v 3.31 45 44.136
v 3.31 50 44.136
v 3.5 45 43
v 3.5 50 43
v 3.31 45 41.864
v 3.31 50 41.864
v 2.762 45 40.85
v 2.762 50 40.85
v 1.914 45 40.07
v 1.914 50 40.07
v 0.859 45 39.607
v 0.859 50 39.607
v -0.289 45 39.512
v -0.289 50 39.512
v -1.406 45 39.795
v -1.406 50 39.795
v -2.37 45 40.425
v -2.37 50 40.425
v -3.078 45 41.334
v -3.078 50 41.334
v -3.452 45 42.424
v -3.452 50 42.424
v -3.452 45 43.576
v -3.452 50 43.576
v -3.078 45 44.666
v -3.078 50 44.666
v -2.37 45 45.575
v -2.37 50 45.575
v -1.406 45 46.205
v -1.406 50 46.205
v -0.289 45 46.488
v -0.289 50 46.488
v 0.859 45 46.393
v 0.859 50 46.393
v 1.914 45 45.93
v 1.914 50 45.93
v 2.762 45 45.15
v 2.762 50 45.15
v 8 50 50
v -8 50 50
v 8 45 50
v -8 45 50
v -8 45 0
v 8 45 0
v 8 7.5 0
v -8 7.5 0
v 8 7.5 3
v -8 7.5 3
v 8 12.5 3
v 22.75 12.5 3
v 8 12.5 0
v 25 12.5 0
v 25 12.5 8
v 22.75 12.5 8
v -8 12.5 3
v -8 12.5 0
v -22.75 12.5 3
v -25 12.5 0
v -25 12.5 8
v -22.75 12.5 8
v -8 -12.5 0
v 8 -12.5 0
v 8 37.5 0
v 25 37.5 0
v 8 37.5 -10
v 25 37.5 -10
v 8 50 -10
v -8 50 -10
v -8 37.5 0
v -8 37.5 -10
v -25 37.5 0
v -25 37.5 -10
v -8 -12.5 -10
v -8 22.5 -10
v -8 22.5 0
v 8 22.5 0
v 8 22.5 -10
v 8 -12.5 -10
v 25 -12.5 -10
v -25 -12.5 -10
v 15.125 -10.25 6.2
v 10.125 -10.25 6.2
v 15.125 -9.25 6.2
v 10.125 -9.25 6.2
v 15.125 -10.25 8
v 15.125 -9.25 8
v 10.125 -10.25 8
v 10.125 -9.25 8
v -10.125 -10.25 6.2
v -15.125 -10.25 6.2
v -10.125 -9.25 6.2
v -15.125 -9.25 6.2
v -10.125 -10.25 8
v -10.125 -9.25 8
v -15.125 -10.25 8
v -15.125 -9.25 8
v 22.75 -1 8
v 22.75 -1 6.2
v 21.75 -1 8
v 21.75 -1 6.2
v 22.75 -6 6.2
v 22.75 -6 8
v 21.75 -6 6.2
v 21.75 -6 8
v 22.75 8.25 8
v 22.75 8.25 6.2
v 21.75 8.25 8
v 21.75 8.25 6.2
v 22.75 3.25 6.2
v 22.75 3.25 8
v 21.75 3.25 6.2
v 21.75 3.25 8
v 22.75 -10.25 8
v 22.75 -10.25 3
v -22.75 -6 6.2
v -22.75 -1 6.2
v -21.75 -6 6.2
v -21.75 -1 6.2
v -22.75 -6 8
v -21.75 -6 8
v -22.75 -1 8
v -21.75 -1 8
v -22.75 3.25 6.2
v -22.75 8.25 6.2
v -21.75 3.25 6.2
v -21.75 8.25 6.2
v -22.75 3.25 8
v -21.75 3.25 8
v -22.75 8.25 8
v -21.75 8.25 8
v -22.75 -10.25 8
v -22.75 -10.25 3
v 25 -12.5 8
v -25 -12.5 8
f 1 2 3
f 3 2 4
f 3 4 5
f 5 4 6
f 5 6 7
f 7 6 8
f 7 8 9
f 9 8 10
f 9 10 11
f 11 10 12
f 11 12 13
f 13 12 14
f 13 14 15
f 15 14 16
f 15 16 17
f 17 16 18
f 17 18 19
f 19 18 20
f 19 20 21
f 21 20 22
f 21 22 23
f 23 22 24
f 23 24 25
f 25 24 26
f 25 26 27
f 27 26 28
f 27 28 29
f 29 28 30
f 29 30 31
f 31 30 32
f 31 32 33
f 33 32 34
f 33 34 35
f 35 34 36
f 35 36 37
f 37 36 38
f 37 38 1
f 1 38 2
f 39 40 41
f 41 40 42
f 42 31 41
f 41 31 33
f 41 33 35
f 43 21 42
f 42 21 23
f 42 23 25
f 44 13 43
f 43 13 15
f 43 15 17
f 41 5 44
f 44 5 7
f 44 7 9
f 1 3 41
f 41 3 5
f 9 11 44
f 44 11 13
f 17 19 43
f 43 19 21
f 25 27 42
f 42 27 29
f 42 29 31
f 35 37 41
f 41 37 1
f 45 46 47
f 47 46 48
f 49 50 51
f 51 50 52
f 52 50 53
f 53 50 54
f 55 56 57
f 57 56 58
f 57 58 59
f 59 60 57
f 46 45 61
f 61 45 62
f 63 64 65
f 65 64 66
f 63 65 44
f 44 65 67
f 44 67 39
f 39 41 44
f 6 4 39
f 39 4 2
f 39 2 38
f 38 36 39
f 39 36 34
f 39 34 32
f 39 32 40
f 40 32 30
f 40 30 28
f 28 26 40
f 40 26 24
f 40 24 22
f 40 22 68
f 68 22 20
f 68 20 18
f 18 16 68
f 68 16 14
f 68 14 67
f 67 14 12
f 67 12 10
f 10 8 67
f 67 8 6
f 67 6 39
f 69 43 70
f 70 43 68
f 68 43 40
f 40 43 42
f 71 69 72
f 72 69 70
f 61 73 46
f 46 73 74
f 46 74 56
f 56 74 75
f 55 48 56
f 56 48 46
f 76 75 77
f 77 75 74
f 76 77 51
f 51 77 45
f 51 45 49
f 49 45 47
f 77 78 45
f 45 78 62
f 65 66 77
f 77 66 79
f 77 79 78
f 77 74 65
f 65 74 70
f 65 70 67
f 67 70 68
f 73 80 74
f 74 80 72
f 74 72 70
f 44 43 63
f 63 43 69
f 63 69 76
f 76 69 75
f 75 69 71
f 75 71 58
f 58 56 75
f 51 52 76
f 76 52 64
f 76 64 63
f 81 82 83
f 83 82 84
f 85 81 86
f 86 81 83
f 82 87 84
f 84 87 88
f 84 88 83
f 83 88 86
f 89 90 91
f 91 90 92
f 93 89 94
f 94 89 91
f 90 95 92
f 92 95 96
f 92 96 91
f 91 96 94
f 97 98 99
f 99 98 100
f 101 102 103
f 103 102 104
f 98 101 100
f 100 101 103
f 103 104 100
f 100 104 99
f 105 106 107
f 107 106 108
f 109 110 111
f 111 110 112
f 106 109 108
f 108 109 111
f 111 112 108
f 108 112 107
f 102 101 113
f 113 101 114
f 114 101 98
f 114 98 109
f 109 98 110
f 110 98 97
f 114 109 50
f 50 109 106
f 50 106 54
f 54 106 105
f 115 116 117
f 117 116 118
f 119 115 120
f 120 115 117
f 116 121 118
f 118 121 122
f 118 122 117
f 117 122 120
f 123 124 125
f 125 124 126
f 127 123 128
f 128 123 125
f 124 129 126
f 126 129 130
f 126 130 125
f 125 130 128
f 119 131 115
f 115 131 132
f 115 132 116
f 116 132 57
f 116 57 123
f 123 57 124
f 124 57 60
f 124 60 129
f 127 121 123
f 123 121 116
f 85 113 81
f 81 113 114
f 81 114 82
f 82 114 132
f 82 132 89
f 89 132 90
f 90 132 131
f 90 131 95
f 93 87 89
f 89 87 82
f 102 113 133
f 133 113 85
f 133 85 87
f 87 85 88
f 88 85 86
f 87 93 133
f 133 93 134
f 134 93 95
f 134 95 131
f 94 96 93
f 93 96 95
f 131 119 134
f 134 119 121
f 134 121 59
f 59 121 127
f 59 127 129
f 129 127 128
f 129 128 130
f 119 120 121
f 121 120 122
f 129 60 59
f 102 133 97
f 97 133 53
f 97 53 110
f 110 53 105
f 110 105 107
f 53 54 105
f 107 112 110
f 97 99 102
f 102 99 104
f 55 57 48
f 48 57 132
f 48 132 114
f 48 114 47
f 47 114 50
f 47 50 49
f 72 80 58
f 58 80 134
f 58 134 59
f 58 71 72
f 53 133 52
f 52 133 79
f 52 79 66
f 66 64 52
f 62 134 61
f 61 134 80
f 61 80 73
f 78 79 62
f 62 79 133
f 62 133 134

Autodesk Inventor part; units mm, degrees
ref_plane "YZ Plane" through (0, 0, 0) normal (1, 0, 0) x (0, 1, 0)
ref_plane "XZ Plane" through (0, 0, 0) normal (0, 1, 0) x (-1, 0, 0)
ref_plane "XY Plane" through (0, 0, 0) normal (0, 0, 1) x (1, 0, 0)
sketch "Sketch1" plane through (0, 0, 0) normal (0, 0, 1) x (1, 0, 0)
  line L0 (-25, 12.5) -> (25, 12.5)
  line L1 (25, 12.5) -> (25, -12.5)
  line L2 (25, -12.5) -> (-25, -12.5)
  line L3 (-25, -12.5) -> (-25, 12.5)
  line L4 (-25, 12.5) -> (25, -12.5) construction
  line L5 (25, 12.5) -> (-25, -12.5) construction
  line L6 (-25, 12.5) -> (25, 12.5) construction
  point P0 (0, 0)
  dimension "d0" = 50
  dimension "d1" = 0
  dimension "d2" = 25
extrude "Extrusion1" add sketch "Sketch1" along normal blind 3
sketch "Sketch2" plane through (0, 0, 3) normal (0, 0, 1) x (1, 0, 0)
  line L0 (-22.75, -10.25) -> (22.75, -10.25)
  line L1 (22.75, -10.25) -> (22.75, 10.25)
  line L2 (22.75, 10.25) -> (-22.75, 10.25)
  line L3 (-22.75, 10.25) -> (-22.75, -10.25)
  line L4 (-22.75, -10.25) -> (22.75, 10.25) construction
  line L5 (22.75, -10.25) -> (-22.75, 10.25) construction
  line L6 (-22.75, -10.25) -> (22.75, -10.25) construction
  line L7 (25, 12.5) -> (-25, 12.5) projected
  line L8 (-25, -12.5) -> (25, -12.5) projected
  line L9 (25, 12.5) -> (25, -12.5)
  line L10 (25, -12.5) -> (-25, -12.5)
  line L11 (-25, -12.5) -> (-25, 12.5)
  line L12 (-22.75, 10.25) -> (-22.75, 12.5)
  line L13 (22.75, 10.25) -> (22.75, 12.5)
  line L14 (-25, 12.5) -> (-22.75, 12.5)
  line L15 (22.75, 12.5) -> (25, 12.5)
  point P0 (0, 0)
  dimension "d5" = 45.5
  dimension "d6" = 0
  dimension "d7" = 20.5
extrude "Extrusion2" add sketch "Sketch2" along normal blind 5 contours L0 L1 L13 L7 L9 L8 L11 L12 L3
sketch "Sketch3" plane through (-22.75, -10.25, 3) normal (1, 0, 0) x (0, 0, -1)
  line L0 (-5, 0) -> (-5, 22.75) projected
  line L1 (-3.2, 18.5) -> (-5, 18.5)
  line L2 (-5, 18.5) -> (-5, 13.5)
  line L3 (-5, 13.5) -> (-3.2, 13.5)
  line L4 (-3.2, 13.5) -> (-3.2, 18.5)
  line L5 (-5, 4.25) -> (-3.2, 4.25)
  line L6 (-3.2, 4.25) -> (-3.2, 9.25)
  line L7 (-3.2, 9.25) -> (-5, 9.25)
  line L8 (-5, 9.25) -> (-5, 4.25)
  point P0 (3, 10.25)
  point P1 (-5, 9.25)
  point P2 (-5, 4.25)
  dimension "d10" = 5
  dimension "d11" = 5
  dimension "d28" = 1.8
extrude "Extrusion3" add sketch "Sketch3" along normal blind 1
sketch "Sketch4" plane through (22.75, -10.25, 3) normal (-1, 0, 0) x (0, 0, 1)
  line L0 (5, 18.5) -> (5, 13.5) projected
  line L1 (3.2, 13.5) -> (3.2, 18.5) projected
  line L2 (5, 18.5) -> (3.2, 18.5)
  line L3 (3.2, 18.5) -> (3.2, 13.5)
  line L4 (3.2, 13.5) -> (5, 13.5)
  line L5 (5, 13.5) -> (5, 18.5)
  line L6 (5, 9.25) -> (5, 13.5) projected
  line L7 (3.2, 9.25) -> (3.2, 4.25) projected
  line L8 (5, 9.25) -> (3.2, 9.25)
  line L9 (3.2, 9.25) -> (3.2, 4.25)
  line L10 (3.2, 4.25) -> (5, 4.25)
  line L11 (5, 4.25) -> (5, 9.25)
  point P0 (-3, 10.25)
extrude "Extrusion4" add sketch "Sketch4" along normal blind 1
sketch "Sketch5" plane through (-22.75, -10.25, 3) normal (0, 1, 0) x (1, 0, 0)
  line L0 (45.5, -5) -> (0, -5) projected
  line L1 (7.625, -5) -> (12.625, -5)
  line L2 (12.625, -5) -> (12.625, -3.2)
  line L3 (12.625, -3.2) -> (7.625, -3.2)
  line L4 (7.625, -3.2) -> (7.625, -5)
  line L5 (32.875, -5) -> (37.875, -5)
  line L6 (37.875, -5) -> (37.875, -3.2)
  line L7 (37.875, -3.2) -> (32.875, -3.2)
  line L8 (32.875, -3.2) -> (32.875, -5)
  point P0 (22.75, 3)
  dimension "d31" = 5
  dimension "d32" = 1.8
  dimension "d33" = 5
  dimension "d34" = 1.8
extrude "Extrusion5" add sketch "Sketch5" along normal blind 1
sketch "Sketch6" plane through (0, 0, 0) normal (0, 0, -1) x (-1, 0, 0)
  line L0 (25, -12.5) -> (-25, -12.5) projected
  line L1 (-8, -12.5) -> (-25, -12.5)
  line L2 (-25, -12.5) -> (-25, 37.5)
  line L3 (-25, 37.5) -> (-8, 37.5)
  line L4 (-8, 37.5) -> (-8, -12.5)
  line L5 (8, -12.5) -> (25, -12.5)
  line L6 (25, -12.5) -> (25, 37.5)
  line L7 (25, 37.5) -> (8, 37.5)
  line L8 (8, 37.5) -> (8, -12.5)
  line L9 (-8, 50) -> (-8, 22.5)
  line L10 (-8, 22.5) -> (8, 22.5)
  line L11 (-8, 50) -> (8, 50)
  line L12 (-8, 50) -> (8, 50) construction
  line L13 (8, 50) -> (8, 37.5)
  point P0 (0, 0)
  point P1 (-25, -12.5)
  point P2 (25, -12.5)
  point P3 (8, 50)
  dimension "d41" = 17
  dimension "d42" = 50
  dimension "d43" = 17
  dimension "d44" = 50
  dimension "d47" = 16
  dimension "d49" = 0
extrude "Extrusion6" add sketch "Sketch6" along normal blind 10 contours L0 L8 L7 L6 | L0 L2 L3 L4 | L10 L4 L9 L11 L13 L8
sketch "Sketch7" plane through (0, 0, 3) normal (0, 0, 1) x (1, 0, 0)
  line L0 (22.75, 12.5) -> (-22.75, 12.5) projected
  line L1 (-8, 12.5) -> (8, 12.5)
  line L2 (8, 12.5) -> (8, 7.5)
  line L3 (8, 7.5) -> (-8, 7.5)
  line L4 (-8, 7.5) -> (-8, 12.5)
  point P0 (0, 0)
  dimension "d35" = 16
  dimension "d36" = 5
extrude "Extrusion7" cut sketch "Sketch7" against normal through all
sketch "Sketch18" plane through (-8, 50, 0) normal (0, 1, 0) x (1, 0, 0)
  line L0 (0, 0) -> (16, 0) projected
  line L1 (0, 0) -> (16, 0)
  line L2 (16, 0) -> (16, -50)
  line L3 (16, -50) -> (0, -50)
  line L4 (0, -50) -> (0, 0)
  line L5 (16, 0) -> (16, 10) projected
  circle A0 centre (8, -43) radius 3.5
  point P0 (8, 0)
  point P1 (8, 0)
  dimension "d86" = 50
  dimension "d87" = 7
  dimension "d88" = 7
extrude "Extrusion15" add sketch "Sketch18" against normal blind 5
properties part number "sensor mount"
